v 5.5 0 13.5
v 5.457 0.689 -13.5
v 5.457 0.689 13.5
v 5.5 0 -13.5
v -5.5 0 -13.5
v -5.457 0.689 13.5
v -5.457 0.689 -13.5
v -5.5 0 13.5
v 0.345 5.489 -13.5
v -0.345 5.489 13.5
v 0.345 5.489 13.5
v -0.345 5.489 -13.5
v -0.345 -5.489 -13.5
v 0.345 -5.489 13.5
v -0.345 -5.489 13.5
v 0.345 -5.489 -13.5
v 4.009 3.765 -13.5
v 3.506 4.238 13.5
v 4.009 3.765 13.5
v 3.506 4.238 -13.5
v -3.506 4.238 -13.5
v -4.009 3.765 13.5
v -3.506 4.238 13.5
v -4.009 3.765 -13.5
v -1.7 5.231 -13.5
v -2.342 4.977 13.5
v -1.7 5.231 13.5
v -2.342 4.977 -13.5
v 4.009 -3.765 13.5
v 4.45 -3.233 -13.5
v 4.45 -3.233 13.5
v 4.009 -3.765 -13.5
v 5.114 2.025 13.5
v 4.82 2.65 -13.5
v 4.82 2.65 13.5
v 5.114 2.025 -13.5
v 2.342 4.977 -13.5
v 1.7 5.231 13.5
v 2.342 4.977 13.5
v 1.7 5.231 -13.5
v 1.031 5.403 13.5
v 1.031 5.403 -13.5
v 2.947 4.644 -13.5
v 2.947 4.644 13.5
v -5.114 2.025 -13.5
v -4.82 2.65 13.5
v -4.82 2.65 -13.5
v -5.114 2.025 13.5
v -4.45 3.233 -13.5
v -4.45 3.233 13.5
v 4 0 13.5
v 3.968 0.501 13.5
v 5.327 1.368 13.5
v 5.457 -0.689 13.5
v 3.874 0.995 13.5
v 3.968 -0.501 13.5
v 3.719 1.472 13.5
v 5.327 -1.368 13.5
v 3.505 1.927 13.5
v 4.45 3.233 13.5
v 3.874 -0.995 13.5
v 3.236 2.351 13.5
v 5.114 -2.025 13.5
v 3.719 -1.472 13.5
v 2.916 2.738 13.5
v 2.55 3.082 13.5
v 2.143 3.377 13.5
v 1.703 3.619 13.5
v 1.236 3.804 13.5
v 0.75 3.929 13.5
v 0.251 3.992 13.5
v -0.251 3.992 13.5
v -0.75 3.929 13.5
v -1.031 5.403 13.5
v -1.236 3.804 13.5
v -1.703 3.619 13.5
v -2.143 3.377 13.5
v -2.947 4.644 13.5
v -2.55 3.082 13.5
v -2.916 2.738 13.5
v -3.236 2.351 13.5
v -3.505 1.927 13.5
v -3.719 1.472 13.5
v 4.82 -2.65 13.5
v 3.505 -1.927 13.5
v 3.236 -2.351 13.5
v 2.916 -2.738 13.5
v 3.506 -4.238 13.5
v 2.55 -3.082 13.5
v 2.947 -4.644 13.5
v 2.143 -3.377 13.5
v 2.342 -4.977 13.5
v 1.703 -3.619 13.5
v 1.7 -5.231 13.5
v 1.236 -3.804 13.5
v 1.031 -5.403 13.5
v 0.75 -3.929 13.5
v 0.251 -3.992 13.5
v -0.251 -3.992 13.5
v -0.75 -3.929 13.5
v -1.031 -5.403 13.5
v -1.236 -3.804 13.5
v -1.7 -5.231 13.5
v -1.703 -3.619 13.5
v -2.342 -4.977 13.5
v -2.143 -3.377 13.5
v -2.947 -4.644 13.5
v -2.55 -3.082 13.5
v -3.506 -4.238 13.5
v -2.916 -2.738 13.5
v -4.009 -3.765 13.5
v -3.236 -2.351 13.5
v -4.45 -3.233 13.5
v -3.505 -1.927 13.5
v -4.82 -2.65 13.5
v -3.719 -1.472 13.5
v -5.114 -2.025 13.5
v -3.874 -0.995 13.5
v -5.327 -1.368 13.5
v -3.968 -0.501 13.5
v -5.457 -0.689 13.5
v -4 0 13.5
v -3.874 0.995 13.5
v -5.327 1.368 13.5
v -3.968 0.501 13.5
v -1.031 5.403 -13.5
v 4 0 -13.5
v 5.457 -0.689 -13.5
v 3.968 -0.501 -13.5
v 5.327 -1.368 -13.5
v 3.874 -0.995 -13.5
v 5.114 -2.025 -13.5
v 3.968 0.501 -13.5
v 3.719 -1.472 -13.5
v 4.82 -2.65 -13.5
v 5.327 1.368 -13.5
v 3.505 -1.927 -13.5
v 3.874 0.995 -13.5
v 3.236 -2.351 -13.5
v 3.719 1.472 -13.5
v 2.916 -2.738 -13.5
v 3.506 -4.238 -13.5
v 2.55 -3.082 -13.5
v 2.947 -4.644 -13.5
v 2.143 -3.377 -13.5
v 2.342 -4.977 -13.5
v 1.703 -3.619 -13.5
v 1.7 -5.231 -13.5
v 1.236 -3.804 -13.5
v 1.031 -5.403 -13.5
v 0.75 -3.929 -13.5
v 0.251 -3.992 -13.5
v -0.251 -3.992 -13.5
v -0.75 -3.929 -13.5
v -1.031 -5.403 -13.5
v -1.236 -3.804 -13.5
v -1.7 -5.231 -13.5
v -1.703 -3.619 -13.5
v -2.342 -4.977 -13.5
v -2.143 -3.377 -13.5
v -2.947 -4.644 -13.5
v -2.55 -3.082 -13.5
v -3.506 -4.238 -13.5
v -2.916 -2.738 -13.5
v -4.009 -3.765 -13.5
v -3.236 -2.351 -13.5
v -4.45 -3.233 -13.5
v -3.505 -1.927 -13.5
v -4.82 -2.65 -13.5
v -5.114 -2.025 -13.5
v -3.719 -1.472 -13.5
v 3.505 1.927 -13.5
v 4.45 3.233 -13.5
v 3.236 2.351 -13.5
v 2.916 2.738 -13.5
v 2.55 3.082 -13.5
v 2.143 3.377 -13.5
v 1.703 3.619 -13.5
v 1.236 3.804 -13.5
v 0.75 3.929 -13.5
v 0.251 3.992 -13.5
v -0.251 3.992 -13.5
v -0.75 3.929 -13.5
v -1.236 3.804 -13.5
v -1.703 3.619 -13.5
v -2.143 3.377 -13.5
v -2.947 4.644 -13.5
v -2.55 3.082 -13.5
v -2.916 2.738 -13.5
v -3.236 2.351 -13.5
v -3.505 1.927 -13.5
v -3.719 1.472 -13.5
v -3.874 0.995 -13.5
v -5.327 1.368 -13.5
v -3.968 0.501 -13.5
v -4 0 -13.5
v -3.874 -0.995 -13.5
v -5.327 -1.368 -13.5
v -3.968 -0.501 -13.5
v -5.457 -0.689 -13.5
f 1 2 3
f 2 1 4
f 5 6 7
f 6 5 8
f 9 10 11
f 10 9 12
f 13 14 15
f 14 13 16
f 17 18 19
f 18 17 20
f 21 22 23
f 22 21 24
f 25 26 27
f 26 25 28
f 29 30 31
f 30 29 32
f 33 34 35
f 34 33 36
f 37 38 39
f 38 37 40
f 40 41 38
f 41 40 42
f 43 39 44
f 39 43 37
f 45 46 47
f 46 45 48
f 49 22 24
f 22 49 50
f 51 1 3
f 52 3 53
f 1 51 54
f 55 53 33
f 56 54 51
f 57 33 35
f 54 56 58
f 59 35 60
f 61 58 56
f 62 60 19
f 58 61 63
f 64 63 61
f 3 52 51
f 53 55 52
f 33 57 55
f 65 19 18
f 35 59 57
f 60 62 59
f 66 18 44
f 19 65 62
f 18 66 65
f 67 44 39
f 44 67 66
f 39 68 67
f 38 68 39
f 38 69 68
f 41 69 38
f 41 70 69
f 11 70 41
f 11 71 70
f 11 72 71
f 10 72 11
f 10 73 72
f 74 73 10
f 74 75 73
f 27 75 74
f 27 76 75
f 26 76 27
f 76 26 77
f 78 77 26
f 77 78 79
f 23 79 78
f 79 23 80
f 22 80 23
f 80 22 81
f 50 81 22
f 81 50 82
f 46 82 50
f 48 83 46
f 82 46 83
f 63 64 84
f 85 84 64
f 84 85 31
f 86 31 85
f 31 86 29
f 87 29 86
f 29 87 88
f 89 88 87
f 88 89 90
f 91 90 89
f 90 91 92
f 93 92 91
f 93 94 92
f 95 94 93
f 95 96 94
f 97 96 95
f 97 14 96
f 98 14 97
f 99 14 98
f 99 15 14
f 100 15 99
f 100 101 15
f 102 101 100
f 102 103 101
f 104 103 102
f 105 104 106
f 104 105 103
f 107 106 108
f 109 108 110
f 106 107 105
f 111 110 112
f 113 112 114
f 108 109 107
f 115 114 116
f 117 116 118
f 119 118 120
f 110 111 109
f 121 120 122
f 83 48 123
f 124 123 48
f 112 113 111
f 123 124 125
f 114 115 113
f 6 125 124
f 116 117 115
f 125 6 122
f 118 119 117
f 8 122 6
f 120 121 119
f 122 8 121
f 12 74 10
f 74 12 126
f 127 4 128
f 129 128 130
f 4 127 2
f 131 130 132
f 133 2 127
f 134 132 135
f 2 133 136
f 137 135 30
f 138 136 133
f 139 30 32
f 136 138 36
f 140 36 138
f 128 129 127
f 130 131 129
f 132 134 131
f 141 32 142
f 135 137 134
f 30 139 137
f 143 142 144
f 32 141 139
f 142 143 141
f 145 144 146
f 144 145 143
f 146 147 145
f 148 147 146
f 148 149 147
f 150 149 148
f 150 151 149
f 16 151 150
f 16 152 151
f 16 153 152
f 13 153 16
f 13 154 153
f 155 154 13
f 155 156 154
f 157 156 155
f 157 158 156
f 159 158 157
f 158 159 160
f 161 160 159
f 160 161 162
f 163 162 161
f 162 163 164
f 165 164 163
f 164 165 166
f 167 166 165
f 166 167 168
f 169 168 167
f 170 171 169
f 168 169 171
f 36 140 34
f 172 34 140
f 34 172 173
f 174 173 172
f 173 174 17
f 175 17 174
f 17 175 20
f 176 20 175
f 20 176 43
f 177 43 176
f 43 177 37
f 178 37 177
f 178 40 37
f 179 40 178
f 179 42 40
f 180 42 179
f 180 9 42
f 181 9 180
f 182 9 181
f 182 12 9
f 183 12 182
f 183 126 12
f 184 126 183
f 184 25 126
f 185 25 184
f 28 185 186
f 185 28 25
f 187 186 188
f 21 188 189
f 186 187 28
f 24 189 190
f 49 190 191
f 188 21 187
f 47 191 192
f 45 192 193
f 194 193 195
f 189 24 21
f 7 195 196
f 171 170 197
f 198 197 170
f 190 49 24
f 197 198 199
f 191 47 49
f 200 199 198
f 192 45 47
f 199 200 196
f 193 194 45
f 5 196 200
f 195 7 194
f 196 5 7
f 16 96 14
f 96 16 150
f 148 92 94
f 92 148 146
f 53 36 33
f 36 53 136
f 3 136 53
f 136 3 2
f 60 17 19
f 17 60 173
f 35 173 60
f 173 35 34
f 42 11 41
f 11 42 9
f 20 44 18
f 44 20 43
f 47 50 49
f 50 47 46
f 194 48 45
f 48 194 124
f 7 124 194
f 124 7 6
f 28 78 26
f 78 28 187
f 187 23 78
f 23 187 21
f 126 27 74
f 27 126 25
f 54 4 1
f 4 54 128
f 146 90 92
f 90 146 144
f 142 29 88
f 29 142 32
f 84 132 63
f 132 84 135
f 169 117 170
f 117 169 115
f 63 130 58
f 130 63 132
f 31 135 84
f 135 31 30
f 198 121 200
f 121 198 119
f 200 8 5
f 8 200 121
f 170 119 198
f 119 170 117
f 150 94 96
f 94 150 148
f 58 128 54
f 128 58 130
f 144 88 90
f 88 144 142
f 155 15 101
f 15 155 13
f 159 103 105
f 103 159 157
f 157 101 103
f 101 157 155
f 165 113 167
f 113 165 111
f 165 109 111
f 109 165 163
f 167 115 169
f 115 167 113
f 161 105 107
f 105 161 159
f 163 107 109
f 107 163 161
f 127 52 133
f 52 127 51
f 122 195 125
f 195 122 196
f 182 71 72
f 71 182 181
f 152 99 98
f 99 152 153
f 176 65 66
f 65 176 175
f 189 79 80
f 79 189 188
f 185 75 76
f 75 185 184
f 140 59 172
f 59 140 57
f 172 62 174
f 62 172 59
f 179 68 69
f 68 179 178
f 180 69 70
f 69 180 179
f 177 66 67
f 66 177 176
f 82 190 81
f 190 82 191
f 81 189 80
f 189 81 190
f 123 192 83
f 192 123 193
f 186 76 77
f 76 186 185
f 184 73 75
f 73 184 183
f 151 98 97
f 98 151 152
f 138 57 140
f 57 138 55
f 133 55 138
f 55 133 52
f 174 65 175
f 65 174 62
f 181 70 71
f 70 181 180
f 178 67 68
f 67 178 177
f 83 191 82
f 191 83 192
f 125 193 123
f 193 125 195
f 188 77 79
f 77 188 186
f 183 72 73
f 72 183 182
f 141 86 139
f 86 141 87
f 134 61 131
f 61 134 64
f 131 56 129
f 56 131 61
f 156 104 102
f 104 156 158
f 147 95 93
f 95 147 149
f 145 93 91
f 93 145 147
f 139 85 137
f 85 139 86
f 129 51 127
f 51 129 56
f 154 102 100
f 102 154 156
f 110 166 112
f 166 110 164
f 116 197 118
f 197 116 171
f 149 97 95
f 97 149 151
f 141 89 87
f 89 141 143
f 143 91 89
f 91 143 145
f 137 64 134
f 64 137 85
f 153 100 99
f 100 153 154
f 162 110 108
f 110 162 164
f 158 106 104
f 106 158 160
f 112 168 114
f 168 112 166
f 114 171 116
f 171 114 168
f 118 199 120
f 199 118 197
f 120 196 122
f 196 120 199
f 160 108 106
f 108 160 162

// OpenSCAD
$fn = 50;


difference() {
	union() {
		translate(v = [0, 0, -13.5000000000]) {
			cylinder(h = 27, r = 5.5000000000);
		}
	}
	union() {
		translate(v = [0, 0, -100.0000000000]) {
			cylinder(h = 200, r = 4);
		}
	}
}
